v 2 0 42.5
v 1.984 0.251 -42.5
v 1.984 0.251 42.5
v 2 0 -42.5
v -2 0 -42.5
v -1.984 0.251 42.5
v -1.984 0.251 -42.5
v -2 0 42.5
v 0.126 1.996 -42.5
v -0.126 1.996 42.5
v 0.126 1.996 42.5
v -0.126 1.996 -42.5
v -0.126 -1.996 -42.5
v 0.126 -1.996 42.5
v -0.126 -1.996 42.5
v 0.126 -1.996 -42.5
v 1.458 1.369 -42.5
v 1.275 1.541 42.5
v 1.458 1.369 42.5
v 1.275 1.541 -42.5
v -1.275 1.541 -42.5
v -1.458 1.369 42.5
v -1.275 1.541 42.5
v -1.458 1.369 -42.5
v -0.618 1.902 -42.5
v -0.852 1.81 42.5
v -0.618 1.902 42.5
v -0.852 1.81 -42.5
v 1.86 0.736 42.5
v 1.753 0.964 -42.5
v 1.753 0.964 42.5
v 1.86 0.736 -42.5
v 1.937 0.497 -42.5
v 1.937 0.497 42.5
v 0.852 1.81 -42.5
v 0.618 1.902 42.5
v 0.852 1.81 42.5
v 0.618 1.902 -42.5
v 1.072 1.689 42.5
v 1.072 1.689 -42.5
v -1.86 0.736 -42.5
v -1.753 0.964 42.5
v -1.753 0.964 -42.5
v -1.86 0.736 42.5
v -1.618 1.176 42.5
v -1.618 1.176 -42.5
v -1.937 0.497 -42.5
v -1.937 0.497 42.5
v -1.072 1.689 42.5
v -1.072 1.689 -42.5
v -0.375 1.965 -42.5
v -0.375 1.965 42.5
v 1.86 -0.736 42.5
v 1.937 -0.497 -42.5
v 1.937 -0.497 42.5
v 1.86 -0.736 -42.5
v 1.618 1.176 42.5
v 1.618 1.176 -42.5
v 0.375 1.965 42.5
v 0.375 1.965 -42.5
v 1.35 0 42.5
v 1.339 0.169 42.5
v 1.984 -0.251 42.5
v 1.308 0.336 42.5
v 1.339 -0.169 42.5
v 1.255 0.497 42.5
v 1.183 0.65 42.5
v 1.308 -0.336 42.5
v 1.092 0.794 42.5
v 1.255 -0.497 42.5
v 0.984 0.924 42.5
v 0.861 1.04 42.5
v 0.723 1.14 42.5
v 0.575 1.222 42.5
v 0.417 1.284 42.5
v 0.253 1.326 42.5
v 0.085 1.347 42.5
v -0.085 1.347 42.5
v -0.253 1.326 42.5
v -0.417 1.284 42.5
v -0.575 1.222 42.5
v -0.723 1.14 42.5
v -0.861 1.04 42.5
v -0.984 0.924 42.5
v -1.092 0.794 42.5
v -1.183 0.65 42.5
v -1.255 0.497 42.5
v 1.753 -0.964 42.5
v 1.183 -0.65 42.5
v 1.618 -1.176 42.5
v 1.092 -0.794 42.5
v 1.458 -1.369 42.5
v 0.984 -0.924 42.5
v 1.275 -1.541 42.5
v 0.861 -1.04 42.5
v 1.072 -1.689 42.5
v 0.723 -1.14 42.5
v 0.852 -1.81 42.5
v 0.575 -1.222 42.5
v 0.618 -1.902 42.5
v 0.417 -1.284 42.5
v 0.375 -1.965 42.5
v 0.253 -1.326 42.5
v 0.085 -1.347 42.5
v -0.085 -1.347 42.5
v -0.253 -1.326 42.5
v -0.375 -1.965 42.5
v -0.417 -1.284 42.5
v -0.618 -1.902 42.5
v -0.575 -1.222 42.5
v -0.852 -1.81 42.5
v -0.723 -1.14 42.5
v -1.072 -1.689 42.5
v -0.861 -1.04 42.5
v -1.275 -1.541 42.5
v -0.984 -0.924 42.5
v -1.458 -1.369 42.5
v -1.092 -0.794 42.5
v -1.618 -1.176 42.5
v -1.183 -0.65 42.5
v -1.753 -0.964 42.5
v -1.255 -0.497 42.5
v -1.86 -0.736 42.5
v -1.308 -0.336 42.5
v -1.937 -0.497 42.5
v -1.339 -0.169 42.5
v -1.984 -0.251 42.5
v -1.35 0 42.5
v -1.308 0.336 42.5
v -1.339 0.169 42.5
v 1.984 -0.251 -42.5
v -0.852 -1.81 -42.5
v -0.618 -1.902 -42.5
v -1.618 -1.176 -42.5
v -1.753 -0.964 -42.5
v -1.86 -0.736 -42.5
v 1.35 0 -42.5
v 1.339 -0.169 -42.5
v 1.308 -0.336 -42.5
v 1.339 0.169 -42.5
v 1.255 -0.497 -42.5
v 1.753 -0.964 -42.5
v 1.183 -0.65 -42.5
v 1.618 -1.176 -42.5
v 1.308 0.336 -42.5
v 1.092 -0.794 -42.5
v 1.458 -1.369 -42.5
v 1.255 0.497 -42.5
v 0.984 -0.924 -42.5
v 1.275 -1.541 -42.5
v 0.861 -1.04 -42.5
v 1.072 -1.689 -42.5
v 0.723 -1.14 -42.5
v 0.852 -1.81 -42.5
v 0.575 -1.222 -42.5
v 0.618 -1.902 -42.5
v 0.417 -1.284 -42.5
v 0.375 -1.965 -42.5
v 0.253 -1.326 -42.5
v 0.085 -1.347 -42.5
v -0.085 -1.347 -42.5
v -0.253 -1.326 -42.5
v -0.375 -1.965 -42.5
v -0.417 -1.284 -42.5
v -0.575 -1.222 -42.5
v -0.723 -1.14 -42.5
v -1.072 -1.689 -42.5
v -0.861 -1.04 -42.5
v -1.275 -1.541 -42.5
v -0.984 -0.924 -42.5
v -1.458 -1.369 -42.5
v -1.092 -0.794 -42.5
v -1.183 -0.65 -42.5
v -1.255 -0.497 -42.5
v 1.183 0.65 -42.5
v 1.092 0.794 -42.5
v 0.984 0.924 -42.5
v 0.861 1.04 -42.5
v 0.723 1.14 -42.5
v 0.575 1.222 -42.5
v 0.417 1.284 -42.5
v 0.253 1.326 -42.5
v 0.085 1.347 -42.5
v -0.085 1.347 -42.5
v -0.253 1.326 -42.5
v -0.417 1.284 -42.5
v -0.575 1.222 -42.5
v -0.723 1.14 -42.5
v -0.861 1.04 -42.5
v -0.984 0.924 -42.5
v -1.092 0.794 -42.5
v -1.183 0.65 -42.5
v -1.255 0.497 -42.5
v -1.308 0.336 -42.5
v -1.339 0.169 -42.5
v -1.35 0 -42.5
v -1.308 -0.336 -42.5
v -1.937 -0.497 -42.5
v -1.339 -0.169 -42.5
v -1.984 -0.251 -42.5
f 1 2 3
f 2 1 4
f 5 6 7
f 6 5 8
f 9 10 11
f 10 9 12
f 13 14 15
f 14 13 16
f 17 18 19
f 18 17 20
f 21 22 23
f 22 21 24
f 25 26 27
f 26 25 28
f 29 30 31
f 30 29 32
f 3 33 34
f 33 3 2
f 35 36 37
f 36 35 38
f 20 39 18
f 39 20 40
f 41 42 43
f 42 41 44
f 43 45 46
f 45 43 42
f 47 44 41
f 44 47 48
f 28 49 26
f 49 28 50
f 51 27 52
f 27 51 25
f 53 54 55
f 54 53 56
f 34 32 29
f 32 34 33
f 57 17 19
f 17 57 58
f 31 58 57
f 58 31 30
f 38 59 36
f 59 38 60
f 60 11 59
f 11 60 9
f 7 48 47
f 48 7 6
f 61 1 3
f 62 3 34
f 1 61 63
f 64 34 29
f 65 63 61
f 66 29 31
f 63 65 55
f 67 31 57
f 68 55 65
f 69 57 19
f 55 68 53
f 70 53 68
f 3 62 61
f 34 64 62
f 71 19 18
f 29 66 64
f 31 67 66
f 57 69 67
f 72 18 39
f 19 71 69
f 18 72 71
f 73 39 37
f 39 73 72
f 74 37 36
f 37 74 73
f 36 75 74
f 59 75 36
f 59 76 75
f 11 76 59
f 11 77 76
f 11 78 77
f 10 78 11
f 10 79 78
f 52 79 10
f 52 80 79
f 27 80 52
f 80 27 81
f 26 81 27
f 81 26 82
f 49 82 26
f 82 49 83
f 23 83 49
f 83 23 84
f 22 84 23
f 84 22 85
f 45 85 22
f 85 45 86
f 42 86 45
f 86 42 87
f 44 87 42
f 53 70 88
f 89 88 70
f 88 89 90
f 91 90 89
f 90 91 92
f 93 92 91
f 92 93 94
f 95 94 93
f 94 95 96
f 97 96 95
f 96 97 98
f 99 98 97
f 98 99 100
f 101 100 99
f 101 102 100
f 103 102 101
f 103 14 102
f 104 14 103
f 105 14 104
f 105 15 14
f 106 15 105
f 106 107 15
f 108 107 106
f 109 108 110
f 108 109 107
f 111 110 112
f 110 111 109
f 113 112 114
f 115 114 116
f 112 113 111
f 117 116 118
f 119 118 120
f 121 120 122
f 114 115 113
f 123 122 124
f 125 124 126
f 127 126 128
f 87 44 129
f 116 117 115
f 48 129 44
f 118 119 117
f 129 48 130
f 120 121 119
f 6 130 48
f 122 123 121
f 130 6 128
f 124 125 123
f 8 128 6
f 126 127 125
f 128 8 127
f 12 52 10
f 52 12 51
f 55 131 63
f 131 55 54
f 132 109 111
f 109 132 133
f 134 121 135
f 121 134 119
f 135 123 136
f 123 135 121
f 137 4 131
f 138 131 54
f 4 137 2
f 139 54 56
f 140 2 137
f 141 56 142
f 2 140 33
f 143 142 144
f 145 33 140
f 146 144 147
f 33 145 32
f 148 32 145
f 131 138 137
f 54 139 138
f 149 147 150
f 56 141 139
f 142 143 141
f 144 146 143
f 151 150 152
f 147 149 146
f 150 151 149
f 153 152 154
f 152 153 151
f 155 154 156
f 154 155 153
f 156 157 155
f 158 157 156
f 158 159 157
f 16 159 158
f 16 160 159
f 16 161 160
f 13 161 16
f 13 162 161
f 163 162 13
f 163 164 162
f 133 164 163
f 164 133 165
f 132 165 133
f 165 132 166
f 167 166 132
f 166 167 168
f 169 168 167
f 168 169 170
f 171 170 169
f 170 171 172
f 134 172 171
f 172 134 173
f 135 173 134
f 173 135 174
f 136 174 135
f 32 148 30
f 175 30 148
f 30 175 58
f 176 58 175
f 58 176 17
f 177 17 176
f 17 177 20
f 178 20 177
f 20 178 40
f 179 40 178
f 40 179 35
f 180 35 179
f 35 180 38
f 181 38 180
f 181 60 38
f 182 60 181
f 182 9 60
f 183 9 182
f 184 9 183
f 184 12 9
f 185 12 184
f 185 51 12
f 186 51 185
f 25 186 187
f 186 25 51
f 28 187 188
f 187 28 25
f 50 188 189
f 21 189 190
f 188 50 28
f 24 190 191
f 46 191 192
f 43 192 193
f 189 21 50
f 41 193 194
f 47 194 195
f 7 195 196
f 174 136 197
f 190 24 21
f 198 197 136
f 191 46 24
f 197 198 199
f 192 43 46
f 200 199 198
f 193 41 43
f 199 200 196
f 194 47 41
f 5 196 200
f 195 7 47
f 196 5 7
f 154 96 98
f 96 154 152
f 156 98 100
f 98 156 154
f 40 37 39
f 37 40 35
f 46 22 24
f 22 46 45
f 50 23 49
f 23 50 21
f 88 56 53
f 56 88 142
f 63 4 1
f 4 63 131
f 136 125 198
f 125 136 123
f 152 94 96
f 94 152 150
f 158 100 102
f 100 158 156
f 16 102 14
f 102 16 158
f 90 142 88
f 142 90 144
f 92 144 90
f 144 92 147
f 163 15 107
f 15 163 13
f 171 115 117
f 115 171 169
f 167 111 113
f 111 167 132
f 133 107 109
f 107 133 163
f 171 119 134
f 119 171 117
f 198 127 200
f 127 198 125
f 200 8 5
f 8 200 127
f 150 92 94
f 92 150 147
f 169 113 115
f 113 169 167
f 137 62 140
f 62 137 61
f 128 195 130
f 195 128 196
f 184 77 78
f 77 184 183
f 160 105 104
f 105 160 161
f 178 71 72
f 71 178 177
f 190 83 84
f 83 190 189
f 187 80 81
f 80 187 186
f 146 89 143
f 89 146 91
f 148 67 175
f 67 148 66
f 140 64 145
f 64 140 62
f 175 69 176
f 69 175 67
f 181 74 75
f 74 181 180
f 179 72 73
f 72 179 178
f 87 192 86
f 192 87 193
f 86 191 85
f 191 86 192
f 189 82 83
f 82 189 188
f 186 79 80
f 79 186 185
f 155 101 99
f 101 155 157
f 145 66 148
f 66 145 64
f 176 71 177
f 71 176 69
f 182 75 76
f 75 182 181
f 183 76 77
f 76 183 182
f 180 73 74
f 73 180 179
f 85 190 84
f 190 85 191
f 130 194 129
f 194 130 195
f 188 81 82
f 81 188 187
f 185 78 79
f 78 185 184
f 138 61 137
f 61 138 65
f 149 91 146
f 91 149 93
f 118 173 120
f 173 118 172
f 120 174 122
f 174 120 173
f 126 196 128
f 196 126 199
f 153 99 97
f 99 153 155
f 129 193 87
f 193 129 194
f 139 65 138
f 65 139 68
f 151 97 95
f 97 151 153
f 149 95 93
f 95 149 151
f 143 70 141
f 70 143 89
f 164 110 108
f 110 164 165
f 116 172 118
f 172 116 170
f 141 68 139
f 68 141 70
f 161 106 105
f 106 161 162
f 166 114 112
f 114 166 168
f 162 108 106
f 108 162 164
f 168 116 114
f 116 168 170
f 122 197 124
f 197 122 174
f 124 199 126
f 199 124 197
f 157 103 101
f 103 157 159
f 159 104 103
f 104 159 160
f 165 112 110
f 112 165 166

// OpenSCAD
$fn = 50;


difference() {
	union() {
		translate(v = [0, 0, -42.5000000000]) {
			cylinder(h = 85, r = 2.0000000000);
		}
	}
	union() {
		translate(v = [0, 0, -100.0000000000]) {
			cylinder(h = 200, r = 1.3500000000);
		}
	}
}
